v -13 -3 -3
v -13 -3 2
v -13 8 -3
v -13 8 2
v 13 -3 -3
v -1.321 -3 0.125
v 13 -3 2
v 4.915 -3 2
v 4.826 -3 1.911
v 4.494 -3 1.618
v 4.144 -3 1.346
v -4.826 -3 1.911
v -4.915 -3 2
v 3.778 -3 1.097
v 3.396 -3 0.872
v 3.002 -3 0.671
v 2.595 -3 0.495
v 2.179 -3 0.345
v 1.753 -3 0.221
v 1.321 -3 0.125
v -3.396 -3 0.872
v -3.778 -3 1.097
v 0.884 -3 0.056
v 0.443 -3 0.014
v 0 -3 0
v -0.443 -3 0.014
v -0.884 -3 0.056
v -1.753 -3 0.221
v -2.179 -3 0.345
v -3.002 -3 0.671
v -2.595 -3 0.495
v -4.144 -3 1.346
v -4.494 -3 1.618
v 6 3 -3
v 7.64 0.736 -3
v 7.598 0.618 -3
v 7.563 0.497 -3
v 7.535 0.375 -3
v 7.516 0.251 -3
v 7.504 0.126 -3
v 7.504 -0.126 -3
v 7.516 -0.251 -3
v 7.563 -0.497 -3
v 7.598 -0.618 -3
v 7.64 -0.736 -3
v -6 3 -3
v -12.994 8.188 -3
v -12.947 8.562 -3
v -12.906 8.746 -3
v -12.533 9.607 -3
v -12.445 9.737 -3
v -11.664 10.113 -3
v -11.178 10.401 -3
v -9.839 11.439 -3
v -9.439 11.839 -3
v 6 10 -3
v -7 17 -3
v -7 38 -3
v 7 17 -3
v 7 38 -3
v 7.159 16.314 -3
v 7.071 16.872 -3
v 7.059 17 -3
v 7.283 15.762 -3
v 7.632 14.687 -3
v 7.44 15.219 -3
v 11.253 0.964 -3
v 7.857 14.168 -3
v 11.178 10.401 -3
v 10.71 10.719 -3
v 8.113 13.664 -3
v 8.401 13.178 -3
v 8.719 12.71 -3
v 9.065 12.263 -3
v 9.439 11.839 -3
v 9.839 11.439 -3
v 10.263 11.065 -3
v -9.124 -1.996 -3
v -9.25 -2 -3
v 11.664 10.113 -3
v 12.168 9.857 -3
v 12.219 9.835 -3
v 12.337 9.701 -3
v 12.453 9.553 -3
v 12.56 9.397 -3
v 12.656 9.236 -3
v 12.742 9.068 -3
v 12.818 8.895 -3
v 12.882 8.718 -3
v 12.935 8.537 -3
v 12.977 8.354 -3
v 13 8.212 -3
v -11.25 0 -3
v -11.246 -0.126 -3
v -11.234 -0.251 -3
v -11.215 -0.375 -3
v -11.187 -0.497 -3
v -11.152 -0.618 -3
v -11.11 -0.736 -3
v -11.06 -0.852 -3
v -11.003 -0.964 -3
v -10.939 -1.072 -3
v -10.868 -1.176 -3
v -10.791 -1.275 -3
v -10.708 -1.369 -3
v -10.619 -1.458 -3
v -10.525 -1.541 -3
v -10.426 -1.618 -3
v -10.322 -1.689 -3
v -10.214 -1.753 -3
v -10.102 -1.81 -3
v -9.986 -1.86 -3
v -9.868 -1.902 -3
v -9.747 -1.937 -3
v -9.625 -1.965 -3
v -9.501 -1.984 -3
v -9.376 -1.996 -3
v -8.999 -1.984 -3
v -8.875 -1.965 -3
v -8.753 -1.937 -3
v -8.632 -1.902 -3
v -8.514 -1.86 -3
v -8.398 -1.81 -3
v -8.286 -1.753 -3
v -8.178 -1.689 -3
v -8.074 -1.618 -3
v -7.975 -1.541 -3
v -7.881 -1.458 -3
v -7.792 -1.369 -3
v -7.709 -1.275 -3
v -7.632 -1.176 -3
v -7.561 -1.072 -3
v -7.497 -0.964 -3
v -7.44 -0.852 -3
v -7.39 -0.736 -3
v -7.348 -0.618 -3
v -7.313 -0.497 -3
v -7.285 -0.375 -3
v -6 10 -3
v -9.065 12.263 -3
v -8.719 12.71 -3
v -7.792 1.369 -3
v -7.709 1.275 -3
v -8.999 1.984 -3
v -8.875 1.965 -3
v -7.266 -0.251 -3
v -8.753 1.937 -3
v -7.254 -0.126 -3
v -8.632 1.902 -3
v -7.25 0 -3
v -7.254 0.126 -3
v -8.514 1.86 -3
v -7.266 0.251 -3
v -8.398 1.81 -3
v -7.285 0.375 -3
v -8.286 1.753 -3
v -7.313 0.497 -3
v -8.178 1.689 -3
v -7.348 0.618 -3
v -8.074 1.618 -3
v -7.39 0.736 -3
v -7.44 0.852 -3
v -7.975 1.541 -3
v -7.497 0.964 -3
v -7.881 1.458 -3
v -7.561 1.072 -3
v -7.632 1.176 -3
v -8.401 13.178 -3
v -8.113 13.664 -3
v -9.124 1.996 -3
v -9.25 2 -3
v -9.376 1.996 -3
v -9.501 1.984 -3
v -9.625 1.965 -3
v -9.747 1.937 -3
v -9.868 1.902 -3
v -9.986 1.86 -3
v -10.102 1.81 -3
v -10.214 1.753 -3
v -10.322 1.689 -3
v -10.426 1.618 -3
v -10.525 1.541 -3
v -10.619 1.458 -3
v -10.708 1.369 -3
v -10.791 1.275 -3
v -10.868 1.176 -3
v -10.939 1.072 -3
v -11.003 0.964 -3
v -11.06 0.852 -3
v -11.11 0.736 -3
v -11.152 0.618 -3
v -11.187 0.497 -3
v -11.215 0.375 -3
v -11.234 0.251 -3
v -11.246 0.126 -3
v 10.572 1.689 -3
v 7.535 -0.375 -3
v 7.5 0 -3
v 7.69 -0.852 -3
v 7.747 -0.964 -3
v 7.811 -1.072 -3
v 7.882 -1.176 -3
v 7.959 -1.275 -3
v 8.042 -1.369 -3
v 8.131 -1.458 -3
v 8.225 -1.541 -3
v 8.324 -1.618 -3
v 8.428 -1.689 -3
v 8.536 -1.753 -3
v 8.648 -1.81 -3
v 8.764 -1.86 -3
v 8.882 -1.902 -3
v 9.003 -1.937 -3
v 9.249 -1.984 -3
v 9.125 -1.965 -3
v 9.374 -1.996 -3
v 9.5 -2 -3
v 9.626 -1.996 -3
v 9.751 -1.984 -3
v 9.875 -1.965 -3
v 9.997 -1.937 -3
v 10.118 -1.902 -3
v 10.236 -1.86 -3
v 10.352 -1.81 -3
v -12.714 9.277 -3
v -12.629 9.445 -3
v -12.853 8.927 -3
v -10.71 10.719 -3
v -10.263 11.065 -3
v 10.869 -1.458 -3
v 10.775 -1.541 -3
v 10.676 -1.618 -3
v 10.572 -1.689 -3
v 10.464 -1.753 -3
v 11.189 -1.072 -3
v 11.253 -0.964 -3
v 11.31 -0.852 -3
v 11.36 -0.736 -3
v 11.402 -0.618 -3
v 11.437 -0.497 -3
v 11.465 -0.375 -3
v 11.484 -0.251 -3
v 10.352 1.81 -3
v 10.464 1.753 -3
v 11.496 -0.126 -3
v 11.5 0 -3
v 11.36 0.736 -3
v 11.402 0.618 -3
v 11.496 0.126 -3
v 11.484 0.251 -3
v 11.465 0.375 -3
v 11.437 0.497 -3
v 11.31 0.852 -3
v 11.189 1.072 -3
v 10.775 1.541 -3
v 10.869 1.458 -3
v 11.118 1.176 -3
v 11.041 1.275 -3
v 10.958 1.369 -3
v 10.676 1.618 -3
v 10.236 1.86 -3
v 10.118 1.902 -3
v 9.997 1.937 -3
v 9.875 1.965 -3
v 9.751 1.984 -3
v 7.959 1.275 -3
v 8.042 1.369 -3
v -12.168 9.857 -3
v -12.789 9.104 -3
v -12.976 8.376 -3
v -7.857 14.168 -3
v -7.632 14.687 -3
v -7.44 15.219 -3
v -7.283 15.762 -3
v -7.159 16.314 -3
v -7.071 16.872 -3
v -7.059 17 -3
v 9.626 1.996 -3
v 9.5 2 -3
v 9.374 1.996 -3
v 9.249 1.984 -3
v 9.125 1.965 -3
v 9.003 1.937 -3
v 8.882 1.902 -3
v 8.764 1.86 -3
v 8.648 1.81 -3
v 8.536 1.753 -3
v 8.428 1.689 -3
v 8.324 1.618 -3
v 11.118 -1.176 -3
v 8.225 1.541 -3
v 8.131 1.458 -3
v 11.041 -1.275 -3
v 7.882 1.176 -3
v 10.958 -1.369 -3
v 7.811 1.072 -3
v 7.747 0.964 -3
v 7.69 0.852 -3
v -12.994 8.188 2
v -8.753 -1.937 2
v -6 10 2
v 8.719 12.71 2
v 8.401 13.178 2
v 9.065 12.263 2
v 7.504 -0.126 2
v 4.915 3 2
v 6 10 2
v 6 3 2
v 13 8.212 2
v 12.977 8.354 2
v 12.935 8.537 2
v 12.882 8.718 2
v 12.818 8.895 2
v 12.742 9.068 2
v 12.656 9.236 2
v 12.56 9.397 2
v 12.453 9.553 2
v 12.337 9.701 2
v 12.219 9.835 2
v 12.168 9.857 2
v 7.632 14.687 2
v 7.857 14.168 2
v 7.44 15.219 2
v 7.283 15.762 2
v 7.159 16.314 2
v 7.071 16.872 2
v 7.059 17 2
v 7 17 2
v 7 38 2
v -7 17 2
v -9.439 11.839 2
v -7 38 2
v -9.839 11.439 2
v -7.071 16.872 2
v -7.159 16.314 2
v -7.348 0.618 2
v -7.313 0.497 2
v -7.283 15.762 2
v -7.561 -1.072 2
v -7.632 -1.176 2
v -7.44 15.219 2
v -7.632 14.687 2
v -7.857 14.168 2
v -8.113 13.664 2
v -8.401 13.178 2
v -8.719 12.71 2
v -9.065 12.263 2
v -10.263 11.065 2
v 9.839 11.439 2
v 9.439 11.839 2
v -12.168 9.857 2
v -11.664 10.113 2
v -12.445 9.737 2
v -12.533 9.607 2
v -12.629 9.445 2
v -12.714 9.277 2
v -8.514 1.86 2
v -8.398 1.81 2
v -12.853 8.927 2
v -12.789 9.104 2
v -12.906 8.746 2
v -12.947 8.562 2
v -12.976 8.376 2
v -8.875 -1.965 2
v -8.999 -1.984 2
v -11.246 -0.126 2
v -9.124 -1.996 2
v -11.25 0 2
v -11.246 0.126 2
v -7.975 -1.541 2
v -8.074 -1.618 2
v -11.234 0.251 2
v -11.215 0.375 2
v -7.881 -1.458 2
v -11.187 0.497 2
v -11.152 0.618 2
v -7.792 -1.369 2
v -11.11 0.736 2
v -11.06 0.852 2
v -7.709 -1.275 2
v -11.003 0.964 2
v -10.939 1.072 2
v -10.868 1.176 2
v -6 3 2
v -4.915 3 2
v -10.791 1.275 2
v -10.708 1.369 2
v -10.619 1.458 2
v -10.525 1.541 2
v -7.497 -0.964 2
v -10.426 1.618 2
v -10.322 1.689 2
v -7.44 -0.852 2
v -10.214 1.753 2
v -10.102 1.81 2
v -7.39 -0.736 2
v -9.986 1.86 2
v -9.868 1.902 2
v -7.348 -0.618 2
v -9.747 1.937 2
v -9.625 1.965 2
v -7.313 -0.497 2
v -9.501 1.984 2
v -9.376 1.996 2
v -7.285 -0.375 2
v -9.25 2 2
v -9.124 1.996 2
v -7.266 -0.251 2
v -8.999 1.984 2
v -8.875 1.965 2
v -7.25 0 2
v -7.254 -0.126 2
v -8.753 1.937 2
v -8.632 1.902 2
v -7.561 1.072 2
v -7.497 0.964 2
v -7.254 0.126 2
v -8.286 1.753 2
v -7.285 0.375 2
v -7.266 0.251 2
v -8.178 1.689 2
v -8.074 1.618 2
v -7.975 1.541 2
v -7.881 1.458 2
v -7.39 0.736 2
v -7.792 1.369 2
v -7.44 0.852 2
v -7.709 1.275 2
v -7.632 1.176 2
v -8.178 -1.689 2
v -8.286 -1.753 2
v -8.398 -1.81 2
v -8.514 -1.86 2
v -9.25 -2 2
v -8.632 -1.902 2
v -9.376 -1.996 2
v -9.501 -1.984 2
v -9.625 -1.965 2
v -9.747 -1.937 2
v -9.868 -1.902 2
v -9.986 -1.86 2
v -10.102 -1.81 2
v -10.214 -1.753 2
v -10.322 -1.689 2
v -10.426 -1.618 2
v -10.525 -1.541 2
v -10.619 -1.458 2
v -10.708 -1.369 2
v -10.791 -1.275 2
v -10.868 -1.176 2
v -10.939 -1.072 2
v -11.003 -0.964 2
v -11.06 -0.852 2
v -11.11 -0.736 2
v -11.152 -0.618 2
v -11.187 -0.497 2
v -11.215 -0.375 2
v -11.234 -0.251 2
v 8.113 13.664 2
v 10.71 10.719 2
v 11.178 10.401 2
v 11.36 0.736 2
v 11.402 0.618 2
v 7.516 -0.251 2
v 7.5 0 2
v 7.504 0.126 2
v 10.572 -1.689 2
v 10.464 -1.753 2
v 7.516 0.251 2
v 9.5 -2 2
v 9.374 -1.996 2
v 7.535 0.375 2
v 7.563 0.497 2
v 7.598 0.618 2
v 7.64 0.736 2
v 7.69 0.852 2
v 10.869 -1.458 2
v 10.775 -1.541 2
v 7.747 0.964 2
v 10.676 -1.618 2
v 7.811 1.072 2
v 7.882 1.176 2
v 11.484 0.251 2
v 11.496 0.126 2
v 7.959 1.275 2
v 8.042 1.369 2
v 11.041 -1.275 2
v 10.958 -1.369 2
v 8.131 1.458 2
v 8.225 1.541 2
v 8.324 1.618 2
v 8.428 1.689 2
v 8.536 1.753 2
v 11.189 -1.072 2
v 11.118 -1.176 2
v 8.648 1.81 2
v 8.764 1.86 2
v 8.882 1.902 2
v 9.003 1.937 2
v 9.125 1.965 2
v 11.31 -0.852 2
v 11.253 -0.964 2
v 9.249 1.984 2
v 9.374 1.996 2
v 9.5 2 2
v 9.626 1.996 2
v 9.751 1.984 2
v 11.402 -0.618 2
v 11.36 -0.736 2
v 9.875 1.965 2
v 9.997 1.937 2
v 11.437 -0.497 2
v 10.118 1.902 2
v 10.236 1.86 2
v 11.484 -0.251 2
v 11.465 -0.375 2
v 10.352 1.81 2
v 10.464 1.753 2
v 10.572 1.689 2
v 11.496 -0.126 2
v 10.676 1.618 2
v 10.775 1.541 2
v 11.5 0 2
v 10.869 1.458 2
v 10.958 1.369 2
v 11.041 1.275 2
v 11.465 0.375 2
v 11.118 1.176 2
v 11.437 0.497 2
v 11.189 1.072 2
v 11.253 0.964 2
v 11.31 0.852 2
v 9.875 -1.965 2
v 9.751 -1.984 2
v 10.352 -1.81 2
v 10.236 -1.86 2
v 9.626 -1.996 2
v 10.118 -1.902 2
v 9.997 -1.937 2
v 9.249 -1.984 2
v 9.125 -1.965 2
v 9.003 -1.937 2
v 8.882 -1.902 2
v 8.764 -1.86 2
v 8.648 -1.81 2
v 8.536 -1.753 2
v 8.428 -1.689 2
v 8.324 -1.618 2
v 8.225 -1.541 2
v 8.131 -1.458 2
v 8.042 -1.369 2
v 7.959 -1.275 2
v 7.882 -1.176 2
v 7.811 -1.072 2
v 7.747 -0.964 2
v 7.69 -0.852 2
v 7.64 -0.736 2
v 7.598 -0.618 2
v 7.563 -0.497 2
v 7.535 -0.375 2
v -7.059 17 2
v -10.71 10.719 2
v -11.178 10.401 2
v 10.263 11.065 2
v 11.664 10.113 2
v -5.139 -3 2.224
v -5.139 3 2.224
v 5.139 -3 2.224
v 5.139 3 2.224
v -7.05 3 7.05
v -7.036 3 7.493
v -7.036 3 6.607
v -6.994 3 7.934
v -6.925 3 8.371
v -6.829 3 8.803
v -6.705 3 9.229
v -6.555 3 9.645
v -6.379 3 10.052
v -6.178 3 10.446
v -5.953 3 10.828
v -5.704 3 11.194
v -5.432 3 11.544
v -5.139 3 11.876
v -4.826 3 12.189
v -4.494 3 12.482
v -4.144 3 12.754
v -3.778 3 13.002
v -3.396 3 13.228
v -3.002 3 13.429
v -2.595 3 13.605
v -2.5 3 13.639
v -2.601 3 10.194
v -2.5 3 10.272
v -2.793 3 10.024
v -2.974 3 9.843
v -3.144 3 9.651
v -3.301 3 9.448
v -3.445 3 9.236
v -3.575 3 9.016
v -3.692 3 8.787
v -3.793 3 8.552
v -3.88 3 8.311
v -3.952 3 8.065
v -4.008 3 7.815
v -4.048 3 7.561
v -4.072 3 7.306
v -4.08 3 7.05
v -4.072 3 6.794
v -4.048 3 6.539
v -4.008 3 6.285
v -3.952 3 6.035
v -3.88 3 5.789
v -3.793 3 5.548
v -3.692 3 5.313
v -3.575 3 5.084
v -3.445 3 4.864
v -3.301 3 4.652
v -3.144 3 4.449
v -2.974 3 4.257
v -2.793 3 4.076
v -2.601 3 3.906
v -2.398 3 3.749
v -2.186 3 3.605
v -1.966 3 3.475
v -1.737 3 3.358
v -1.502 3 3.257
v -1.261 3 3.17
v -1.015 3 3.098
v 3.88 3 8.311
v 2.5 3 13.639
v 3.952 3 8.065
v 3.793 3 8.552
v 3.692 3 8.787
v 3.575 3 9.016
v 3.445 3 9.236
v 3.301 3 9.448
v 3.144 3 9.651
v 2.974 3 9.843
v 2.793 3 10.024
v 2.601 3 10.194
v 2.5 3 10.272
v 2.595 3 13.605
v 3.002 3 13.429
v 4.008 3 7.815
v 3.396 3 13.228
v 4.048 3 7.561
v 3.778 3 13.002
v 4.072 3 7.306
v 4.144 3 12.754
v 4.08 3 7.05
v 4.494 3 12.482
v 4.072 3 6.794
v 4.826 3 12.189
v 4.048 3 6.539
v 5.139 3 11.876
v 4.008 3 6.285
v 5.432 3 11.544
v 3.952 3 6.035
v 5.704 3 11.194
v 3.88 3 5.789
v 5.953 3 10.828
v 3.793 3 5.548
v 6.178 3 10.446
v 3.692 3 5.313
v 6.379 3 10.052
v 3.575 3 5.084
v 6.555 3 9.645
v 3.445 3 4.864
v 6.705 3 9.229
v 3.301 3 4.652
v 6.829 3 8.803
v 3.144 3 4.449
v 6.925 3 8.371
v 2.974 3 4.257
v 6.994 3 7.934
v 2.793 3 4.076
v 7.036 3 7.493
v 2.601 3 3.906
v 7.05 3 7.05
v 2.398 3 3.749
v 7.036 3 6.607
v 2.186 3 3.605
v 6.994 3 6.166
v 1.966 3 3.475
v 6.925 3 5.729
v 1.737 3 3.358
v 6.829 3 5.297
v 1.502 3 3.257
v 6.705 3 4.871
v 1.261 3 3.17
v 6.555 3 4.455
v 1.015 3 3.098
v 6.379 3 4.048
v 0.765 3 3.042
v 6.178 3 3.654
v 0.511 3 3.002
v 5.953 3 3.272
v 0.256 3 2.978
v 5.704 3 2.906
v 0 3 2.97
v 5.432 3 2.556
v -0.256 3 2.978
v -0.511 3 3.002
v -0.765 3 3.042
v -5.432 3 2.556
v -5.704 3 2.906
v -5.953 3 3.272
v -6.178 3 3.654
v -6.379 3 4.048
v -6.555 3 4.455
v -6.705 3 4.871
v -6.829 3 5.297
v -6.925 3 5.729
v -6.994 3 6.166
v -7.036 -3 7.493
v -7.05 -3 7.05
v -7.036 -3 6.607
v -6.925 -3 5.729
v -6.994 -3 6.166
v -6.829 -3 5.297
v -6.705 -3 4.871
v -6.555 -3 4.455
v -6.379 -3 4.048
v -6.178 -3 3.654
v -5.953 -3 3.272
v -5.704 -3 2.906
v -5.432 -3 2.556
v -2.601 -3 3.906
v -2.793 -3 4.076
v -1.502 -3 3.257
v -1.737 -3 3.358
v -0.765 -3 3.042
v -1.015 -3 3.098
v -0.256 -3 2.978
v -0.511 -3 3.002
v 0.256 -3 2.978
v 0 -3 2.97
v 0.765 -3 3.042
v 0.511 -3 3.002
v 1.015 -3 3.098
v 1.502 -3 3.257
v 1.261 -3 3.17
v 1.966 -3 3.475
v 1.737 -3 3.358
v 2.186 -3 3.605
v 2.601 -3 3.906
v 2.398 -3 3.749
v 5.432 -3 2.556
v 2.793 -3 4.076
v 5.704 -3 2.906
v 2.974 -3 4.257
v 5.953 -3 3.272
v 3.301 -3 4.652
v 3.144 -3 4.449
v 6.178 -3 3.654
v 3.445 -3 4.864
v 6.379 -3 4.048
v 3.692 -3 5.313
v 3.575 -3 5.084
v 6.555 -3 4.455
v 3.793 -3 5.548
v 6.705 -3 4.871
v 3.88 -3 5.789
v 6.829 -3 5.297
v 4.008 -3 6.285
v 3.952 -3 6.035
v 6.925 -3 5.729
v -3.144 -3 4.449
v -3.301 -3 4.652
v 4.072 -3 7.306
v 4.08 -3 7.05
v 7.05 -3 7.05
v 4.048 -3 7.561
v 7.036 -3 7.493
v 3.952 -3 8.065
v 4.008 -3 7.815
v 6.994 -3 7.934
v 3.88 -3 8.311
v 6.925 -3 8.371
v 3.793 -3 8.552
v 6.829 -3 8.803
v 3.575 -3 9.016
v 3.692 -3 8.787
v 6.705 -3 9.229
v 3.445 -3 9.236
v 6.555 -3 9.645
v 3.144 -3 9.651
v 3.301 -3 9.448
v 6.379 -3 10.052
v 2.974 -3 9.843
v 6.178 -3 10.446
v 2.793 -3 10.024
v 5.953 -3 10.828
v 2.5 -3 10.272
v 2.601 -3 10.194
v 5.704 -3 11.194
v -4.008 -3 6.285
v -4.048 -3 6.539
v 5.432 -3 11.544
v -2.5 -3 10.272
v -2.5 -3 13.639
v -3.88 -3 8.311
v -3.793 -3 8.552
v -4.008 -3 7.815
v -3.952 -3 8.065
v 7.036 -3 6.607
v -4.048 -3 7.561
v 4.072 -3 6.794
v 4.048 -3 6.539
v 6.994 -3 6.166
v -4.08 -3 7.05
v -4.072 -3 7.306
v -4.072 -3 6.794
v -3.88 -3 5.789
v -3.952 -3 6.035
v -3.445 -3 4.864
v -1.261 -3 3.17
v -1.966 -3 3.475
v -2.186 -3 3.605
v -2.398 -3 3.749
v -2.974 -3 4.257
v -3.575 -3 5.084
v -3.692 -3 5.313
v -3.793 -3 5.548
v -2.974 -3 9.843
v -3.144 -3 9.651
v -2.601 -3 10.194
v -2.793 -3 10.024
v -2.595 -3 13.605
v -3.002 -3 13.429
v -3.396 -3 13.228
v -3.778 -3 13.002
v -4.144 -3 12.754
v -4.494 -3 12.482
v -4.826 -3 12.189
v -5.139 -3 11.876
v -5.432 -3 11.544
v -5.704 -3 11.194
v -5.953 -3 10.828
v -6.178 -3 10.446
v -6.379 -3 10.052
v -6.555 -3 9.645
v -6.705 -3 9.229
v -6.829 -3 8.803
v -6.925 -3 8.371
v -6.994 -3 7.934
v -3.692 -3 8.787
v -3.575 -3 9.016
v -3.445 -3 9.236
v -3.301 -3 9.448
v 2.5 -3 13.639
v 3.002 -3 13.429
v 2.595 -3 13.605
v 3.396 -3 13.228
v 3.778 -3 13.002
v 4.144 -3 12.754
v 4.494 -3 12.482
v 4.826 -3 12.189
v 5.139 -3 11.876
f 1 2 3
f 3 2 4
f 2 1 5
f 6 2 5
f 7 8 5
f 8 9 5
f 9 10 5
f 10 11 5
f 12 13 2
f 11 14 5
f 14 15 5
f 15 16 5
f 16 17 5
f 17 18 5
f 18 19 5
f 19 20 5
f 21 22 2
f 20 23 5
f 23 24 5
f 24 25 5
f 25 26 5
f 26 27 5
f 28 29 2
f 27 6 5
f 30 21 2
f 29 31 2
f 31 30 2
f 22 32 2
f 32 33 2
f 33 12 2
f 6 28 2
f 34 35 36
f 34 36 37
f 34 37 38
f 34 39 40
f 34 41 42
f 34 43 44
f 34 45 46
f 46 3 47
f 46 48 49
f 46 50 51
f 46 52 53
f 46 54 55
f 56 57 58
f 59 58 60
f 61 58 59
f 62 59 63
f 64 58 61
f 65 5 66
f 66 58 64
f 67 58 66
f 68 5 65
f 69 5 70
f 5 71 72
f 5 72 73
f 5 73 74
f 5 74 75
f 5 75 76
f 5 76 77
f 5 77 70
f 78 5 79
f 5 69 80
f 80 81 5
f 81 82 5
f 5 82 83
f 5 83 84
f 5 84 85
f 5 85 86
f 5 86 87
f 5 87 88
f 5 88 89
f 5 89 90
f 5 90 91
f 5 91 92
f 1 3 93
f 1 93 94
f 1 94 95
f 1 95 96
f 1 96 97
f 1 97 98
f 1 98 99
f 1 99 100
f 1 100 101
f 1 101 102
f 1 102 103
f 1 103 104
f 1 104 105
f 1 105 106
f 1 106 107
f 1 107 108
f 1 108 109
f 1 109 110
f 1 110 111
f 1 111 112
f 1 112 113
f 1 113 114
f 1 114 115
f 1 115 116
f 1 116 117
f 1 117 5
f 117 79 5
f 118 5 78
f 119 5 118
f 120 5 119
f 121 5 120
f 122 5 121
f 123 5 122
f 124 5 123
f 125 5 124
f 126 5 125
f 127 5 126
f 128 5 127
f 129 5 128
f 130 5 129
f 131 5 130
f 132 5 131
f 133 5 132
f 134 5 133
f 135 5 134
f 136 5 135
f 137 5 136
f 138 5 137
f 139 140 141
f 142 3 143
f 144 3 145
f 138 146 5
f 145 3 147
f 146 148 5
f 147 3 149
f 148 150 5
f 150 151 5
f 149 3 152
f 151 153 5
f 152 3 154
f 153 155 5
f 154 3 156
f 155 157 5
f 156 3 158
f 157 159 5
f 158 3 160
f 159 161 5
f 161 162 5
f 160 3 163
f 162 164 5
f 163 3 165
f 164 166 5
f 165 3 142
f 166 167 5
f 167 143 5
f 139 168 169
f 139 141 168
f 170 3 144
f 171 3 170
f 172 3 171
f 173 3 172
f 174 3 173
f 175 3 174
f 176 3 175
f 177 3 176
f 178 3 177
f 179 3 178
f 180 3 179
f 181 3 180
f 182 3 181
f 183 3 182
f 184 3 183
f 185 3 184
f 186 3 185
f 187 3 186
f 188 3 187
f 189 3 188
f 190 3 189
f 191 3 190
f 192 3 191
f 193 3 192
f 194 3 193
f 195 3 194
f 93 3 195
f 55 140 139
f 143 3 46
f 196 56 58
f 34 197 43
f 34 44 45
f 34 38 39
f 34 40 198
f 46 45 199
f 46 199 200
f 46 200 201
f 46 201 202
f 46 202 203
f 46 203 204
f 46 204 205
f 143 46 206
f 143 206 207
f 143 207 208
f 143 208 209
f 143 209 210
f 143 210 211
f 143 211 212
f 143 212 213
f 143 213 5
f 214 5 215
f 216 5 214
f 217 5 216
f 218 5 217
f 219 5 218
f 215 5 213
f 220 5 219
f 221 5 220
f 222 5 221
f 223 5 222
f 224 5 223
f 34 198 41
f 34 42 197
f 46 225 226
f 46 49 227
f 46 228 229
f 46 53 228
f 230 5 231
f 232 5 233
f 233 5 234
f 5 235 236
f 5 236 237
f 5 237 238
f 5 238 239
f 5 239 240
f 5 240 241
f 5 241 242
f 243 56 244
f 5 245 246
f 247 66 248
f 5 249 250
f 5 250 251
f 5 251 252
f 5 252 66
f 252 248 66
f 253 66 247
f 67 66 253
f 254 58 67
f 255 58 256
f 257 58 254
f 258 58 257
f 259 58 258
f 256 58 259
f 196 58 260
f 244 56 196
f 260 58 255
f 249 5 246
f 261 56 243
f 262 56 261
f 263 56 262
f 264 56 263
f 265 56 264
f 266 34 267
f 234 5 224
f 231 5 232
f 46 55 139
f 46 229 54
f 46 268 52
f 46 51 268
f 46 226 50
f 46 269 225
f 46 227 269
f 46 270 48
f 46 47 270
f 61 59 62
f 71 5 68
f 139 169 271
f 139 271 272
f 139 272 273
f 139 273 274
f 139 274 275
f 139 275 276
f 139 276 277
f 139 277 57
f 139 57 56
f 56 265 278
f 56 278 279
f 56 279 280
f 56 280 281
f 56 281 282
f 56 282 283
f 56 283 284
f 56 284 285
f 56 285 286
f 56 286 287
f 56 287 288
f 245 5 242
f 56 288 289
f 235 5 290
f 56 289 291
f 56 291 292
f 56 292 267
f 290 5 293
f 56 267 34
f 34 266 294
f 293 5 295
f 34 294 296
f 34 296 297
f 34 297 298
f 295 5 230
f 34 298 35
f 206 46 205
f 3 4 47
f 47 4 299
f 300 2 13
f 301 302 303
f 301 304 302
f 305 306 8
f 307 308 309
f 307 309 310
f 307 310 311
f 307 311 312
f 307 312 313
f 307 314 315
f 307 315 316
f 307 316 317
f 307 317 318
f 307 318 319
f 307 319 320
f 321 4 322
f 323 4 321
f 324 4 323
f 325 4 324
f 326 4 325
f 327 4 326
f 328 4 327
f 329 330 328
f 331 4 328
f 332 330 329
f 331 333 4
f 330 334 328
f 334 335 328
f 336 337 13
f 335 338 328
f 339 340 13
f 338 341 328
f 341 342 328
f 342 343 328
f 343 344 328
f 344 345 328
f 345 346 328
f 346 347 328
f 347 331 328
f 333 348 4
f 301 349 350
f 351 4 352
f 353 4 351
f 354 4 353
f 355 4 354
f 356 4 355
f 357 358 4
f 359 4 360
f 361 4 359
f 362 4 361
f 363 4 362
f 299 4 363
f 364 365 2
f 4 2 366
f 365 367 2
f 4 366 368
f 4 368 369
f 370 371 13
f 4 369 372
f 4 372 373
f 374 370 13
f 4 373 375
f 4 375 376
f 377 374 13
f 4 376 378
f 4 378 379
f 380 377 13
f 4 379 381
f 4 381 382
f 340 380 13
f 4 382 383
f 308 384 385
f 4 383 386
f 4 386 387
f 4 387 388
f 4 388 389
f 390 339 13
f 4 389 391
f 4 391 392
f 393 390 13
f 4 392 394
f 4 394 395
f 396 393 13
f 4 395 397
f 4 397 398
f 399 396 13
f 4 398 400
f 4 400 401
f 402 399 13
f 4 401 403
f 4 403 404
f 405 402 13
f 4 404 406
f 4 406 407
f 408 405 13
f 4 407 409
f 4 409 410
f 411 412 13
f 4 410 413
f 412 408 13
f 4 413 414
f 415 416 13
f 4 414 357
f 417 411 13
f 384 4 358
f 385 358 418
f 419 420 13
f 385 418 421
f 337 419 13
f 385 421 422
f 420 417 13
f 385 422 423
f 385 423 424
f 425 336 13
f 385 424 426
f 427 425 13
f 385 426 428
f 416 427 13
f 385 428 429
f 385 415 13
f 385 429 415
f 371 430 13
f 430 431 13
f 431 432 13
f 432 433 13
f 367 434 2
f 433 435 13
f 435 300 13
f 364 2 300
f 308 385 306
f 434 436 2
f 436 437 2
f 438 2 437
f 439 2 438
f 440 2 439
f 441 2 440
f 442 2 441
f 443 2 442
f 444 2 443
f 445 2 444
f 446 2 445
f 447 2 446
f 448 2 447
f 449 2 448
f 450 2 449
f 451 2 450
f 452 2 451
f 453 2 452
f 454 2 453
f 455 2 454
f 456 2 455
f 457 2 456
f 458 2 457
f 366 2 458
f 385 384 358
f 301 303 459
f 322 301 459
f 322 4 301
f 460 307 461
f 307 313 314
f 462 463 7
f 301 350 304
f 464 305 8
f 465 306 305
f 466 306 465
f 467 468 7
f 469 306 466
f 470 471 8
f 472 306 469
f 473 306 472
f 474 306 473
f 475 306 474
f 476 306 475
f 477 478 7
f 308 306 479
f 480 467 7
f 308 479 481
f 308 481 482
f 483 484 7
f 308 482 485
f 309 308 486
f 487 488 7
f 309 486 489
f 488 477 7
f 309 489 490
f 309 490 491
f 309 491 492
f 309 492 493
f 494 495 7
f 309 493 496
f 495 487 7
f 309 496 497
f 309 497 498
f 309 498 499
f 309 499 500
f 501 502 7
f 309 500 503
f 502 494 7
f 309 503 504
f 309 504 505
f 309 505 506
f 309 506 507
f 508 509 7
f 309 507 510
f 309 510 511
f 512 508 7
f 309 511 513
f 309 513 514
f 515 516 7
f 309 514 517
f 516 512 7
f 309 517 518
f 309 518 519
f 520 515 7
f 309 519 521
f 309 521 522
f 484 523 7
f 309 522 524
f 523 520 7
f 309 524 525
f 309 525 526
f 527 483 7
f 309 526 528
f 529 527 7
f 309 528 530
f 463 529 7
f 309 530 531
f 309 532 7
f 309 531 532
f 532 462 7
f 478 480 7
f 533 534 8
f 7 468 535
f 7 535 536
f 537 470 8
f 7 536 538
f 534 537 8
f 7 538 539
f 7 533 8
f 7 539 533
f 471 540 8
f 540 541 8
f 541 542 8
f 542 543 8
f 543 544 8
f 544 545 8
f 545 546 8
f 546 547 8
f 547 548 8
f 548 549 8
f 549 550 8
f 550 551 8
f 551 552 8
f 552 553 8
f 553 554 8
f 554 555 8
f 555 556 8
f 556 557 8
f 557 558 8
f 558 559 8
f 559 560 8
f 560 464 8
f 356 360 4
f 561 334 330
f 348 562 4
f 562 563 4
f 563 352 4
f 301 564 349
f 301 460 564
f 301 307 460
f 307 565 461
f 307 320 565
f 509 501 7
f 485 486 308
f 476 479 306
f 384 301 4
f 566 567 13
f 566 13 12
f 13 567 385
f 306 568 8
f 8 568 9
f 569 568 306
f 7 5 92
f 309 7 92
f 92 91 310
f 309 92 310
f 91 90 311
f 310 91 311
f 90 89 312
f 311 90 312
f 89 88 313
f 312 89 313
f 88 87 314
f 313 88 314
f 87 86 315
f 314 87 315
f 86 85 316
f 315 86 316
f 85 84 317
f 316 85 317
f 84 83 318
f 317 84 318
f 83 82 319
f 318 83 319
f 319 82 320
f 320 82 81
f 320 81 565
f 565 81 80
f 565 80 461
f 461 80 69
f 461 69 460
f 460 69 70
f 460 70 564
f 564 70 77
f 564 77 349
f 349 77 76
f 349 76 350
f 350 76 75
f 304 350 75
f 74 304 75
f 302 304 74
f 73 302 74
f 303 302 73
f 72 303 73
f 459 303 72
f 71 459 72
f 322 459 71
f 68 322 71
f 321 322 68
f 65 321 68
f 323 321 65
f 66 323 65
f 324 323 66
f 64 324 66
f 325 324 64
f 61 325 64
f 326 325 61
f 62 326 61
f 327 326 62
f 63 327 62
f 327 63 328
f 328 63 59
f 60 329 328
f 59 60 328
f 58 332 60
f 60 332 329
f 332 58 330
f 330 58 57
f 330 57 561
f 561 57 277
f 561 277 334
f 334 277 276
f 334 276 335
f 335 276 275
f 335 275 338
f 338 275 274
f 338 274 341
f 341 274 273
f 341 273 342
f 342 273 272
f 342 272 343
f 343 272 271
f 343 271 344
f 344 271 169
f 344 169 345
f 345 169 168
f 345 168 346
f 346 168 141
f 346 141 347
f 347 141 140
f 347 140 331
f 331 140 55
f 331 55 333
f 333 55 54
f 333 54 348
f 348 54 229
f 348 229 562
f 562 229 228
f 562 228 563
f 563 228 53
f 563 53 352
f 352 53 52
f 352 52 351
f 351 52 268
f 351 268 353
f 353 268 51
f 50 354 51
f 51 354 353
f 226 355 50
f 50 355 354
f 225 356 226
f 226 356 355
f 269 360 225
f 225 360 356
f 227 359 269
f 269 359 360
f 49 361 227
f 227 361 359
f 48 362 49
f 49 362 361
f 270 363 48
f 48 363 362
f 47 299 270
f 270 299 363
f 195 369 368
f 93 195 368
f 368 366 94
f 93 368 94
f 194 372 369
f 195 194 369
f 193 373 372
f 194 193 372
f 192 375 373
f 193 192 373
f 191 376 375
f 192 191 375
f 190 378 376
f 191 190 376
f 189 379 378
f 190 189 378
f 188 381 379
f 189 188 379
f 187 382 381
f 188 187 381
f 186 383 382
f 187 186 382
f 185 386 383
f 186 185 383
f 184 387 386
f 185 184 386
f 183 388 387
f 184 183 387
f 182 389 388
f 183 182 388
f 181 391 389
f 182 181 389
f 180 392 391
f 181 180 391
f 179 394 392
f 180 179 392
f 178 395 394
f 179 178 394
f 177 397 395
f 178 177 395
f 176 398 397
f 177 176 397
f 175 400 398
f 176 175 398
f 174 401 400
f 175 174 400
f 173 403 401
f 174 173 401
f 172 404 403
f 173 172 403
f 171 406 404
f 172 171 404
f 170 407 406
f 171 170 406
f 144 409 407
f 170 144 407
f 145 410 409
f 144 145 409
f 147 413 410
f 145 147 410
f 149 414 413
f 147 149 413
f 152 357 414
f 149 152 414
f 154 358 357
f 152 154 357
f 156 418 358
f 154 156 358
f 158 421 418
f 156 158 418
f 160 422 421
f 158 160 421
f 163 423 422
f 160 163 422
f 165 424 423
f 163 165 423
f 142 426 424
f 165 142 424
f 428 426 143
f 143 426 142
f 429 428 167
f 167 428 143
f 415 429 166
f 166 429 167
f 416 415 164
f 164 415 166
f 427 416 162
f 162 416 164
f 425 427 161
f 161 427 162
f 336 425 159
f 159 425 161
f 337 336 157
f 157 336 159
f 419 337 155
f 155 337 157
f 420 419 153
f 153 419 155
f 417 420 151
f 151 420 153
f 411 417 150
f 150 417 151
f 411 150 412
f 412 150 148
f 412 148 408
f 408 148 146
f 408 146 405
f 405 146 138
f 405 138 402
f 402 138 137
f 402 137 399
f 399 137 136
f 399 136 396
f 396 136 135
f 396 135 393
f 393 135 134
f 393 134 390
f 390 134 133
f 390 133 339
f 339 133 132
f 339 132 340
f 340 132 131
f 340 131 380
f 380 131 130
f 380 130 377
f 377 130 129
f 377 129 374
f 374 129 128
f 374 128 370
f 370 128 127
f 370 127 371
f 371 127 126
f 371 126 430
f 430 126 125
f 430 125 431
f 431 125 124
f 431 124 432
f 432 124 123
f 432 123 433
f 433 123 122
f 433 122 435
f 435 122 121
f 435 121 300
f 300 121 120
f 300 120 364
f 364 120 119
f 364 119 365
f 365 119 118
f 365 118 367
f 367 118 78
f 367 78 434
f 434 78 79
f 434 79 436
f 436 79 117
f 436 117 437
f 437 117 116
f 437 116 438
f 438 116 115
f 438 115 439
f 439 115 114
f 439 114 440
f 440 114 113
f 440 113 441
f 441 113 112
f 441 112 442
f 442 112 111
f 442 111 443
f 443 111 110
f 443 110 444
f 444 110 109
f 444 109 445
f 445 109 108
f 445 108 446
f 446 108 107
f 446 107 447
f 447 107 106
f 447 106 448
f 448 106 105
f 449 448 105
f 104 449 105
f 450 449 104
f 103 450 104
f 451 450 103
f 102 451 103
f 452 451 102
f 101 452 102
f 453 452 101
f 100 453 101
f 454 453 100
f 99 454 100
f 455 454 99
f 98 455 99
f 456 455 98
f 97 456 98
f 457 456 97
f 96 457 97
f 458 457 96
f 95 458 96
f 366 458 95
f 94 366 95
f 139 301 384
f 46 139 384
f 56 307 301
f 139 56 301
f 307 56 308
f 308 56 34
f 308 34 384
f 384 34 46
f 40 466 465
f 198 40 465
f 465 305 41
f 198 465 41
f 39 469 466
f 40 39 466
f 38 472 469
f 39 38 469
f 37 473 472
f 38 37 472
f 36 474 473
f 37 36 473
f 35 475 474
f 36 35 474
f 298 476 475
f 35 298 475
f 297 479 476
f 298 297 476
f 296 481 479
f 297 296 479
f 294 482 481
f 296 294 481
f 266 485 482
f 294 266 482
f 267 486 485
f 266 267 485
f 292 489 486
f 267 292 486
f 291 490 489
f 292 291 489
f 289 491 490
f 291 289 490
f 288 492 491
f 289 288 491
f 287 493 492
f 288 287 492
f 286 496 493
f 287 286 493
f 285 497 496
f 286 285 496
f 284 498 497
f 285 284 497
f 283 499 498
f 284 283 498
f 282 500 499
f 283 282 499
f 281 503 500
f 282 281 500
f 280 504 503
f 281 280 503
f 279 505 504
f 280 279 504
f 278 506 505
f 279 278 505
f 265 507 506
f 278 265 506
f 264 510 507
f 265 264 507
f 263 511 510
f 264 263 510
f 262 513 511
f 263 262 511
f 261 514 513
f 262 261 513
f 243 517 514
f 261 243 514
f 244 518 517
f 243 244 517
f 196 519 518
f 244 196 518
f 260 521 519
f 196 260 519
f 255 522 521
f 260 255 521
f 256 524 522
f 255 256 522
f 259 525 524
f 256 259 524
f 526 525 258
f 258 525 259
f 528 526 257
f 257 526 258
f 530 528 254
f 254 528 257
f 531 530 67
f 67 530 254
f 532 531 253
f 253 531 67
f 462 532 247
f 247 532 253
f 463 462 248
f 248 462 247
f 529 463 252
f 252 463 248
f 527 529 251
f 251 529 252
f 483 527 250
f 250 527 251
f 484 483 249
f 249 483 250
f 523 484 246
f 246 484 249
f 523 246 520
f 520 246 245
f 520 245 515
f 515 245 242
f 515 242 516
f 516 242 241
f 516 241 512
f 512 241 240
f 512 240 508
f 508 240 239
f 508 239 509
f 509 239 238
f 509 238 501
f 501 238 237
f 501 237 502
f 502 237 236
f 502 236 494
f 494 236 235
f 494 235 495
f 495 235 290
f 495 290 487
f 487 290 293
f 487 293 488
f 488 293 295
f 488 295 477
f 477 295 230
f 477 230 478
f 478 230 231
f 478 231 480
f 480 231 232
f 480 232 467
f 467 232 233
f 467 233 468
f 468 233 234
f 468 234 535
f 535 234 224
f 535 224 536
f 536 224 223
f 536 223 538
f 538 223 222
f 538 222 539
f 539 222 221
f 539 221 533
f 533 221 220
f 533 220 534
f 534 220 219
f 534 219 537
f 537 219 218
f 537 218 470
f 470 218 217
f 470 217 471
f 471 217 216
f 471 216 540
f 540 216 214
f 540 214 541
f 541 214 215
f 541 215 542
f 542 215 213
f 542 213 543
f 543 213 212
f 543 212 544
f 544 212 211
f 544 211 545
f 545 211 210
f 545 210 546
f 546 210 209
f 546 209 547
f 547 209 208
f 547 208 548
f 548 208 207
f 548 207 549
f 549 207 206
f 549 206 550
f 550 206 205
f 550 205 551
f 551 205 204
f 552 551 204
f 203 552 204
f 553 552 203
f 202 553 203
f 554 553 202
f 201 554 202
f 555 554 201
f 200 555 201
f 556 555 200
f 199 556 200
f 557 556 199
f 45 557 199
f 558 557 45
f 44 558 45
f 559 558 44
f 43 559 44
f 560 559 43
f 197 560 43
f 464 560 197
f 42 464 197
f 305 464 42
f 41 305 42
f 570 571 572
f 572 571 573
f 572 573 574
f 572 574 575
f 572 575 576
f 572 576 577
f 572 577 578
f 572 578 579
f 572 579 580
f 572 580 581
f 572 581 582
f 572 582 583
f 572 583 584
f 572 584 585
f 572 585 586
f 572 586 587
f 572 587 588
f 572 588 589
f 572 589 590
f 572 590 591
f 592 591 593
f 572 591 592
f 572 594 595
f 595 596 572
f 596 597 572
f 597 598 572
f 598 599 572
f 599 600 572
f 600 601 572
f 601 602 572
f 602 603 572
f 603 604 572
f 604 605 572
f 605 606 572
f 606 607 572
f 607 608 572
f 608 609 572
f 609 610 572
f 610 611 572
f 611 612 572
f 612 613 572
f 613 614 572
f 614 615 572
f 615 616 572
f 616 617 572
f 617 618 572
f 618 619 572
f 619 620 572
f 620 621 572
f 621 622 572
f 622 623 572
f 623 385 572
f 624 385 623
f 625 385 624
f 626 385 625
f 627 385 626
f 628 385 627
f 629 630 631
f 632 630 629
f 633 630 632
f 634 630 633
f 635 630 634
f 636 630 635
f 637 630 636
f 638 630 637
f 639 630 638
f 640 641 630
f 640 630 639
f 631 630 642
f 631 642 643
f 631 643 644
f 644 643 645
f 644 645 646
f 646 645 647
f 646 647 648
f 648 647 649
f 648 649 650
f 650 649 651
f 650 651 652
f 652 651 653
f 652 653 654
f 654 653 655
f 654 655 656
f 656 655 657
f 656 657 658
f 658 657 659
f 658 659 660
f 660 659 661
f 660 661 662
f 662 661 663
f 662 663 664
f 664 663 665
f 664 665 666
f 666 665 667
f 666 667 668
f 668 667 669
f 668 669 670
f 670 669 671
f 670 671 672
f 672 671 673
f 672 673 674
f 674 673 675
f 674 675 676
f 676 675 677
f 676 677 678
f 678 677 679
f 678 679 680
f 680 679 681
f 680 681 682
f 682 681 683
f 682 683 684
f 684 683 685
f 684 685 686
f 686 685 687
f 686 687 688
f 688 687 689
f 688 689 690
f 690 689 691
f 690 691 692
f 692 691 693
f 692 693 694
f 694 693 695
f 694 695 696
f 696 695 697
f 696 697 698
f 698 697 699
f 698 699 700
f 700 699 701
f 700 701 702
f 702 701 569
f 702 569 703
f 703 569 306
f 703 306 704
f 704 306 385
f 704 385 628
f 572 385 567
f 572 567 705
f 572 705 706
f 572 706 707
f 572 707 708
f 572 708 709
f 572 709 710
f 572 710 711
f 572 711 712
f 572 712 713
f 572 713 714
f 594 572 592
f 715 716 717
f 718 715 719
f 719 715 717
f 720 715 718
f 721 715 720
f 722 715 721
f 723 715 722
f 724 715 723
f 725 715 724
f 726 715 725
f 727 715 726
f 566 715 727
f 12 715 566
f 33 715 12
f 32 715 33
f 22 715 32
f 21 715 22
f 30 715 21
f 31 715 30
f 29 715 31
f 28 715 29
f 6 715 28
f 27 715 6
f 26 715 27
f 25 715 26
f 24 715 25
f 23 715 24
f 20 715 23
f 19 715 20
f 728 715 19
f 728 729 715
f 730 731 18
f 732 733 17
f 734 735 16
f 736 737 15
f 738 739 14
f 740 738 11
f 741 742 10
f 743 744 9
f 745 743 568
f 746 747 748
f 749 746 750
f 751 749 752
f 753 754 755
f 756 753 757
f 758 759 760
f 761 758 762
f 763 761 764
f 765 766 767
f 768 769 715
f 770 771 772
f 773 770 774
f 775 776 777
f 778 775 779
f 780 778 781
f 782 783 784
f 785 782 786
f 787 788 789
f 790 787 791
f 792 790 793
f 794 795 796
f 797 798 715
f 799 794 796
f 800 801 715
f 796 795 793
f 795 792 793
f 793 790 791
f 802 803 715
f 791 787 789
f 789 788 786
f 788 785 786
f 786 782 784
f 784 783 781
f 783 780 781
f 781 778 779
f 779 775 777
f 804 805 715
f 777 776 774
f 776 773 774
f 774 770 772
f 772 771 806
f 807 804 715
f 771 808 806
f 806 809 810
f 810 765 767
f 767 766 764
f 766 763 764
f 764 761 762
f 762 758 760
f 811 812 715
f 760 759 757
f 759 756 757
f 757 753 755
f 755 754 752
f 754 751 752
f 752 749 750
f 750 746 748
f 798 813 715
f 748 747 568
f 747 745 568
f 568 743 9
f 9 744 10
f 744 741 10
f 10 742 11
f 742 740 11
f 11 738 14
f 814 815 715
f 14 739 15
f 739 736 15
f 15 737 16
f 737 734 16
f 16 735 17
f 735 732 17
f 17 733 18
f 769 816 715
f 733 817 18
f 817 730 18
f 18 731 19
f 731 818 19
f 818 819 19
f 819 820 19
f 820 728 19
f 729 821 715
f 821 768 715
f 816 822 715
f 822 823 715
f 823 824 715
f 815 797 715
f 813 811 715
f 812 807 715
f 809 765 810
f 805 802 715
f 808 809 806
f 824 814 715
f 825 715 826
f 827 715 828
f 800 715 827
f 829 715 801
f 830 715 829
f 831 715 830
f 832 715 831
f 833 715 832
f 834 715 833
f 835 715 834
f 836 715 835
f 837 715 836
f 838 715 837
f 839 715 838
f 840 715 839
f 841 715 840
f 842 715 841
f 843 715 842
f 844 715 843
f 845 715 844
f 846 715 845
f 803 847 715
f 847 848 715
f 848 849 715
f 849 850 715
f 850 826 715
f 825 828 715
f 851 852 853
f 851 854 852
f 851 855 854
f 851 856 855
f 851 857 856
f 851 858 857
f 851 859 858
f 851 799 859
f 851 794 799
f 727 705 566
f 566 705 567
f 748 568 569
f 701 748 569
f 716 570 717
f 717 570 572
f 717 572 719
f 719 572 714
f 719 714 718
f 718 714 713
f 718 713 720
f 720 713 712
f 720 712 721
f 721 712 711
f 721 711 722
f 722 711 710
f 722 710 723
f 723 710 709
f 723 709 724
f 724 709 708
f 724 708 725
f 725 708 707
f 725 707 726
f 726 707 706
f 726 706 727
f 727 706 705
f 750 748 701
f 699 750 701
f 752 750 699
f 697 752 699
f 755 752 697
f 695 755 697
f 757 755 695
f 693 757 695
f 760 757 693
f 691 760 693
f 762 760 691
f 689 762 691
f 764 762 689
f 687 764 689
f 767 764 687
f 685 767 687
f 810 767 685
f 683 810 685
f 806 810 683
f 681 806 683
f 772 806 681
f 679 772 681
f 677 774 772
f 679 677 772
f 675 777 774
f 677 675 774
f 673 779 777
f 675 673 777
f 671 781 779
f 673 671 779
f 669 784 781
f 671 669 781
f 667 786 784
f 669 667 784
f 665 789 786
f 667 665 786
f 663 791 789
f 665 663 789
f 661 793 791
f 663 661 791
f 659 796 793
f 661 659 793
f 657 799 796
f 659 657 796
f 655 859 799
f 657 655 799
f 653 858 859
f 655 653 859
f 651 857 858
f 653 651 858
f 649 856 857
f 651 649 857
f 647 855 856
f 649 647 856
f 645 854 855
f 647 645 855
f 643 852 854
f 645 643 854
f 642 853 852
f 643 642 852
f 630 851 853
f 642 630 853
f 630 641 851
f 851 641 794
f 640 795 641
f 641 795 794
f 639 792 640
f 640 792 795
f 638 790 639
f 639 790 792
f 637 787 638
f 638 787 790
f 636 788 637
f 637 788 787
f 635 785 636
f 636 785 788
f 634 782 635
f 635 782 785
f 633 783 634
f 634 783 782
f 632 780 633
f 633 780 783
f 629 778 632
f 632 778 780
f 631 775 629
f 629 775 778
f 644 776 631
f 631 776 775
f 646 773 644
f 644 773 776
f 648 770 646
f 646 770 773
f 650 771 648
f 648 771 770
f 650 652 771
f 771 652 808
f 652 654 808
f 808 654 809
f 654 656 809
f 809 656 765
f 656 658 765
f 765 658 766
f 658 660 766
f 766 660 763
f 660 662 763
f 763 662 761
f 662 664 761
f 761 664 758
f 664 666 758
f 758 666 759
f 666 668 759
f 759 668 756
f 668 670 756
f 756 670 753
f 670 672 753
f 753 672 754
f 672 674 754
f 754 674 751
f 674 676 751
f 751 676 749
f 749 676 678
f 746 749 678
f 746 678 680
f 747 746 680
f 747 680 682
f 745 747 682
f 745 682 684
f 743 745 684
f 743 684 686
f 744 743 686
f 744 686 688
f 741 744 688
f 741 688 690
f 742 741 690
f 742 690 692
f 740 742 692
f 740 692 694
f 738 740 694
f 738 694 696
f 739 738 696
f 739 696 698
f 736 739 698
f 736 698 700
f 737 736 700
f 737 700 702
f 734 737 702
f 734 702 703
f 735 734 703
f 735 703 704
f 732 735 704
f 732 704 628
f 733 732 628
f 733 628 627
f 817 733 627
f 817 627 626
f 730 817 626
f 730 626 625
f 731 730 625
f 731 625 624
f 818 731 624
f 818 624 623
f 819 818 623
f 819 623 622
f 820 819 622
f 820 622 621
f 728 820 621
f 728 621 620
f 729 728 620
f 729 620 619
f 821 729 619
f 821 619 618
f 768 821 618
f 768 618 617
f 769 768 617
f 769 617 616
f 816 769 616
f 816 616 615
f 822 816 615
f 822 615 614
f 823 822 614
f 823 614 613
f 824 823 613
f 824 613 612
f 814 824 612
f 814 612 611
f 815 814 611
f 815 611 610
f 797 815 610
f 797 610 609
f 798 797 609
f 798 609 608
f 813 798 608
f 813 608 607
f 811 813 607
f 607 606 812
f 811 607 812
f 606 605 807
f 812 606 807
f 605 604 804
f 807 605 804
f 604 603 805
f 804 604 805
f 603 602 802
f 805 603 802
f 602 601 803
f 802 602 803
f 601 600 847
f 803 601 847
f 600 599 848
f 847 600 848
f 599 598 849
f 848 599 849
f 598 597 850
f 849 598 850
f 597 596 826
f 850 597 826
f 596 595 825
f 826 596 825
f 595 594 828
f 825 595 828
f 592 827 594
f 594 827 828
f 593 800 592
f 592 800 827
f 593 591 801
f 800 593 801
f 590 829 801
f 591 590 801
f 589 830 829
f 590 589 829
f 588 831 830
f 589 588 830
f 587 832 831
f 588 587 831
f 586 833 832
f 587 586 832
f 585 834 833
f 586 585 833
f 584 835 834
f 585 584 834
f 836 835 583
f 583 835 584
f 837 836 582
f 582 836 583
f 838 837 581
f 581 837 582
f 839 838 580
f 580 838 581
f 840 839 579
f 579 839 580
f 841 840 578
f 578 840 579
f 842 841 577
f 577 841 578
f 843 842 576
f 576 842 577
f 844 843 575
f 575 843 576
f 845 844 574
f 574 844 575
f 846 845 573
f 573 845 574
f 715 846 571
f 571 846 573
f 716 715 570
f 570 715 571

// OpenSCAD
//---------------------------------------------------------------
//--  Eje Z final de carrera.  (c) Pedro de Oro Martín
//---------------------------------------------------------------
//-- Released under the GPL license
//---------------------------------------------------------------


//-- Chaflan cilíndrico

module chaflan(){

	difference(){
		cylinder(h=30,r=3,$fn=100,center=true);

		translate([3,0,0])
		cylinder(h=30,r=3,$fn=100,center=true);
		
		translate([0,-5,0])
		cube([10,10,40], center=true);
	}
}

//-- Cuerpo

difference()
{
	translate([0,17.5,-0.5])
	cube(size=[26,41,5], center=true);

	translate([20,37.5,0])
	cube(size=[26,41,6], center=true);

	translate([-20,37.5,0])
	cube(size=[26,41,6], center=true);

	translate([9.5,0,-1])
	cylinder(h=35, r=2,center=true, $fn=100);

	translate([-9.25,0,-1])
	cylinder(h=35, r=2,center=true, $fn=100);

	translate([-13,8,0])
	chaflan();
	
	translate([11.3,10.5,0])
	rotate([0,0,245])chaflan();

//agujero para soldaduras

			translate([0,6.5,0])
			cube(size=[12,7,10], center=true);

//curvas esteticas

			translate([16,18,0])
			cylinder(h=30,r=9,$fn=100,center=true);

			translate([-16,18,0])
			cylinder(h=30,r=9,$fn=100,center=true);
		}


//-- Sujección varilla

difference()
{

  translate([0,3,7.05])
  rotate([90,0,0])
  cylinder(h=6, r=7.05, $fn=100);

  translate([0,5,7.05]) 
  rotate([90,0,0])
  cylinder(h=10, r=4.08, $fn=100);

  translate([0,0,11])
  cube(size=[5,8,10], center=true);	
}
